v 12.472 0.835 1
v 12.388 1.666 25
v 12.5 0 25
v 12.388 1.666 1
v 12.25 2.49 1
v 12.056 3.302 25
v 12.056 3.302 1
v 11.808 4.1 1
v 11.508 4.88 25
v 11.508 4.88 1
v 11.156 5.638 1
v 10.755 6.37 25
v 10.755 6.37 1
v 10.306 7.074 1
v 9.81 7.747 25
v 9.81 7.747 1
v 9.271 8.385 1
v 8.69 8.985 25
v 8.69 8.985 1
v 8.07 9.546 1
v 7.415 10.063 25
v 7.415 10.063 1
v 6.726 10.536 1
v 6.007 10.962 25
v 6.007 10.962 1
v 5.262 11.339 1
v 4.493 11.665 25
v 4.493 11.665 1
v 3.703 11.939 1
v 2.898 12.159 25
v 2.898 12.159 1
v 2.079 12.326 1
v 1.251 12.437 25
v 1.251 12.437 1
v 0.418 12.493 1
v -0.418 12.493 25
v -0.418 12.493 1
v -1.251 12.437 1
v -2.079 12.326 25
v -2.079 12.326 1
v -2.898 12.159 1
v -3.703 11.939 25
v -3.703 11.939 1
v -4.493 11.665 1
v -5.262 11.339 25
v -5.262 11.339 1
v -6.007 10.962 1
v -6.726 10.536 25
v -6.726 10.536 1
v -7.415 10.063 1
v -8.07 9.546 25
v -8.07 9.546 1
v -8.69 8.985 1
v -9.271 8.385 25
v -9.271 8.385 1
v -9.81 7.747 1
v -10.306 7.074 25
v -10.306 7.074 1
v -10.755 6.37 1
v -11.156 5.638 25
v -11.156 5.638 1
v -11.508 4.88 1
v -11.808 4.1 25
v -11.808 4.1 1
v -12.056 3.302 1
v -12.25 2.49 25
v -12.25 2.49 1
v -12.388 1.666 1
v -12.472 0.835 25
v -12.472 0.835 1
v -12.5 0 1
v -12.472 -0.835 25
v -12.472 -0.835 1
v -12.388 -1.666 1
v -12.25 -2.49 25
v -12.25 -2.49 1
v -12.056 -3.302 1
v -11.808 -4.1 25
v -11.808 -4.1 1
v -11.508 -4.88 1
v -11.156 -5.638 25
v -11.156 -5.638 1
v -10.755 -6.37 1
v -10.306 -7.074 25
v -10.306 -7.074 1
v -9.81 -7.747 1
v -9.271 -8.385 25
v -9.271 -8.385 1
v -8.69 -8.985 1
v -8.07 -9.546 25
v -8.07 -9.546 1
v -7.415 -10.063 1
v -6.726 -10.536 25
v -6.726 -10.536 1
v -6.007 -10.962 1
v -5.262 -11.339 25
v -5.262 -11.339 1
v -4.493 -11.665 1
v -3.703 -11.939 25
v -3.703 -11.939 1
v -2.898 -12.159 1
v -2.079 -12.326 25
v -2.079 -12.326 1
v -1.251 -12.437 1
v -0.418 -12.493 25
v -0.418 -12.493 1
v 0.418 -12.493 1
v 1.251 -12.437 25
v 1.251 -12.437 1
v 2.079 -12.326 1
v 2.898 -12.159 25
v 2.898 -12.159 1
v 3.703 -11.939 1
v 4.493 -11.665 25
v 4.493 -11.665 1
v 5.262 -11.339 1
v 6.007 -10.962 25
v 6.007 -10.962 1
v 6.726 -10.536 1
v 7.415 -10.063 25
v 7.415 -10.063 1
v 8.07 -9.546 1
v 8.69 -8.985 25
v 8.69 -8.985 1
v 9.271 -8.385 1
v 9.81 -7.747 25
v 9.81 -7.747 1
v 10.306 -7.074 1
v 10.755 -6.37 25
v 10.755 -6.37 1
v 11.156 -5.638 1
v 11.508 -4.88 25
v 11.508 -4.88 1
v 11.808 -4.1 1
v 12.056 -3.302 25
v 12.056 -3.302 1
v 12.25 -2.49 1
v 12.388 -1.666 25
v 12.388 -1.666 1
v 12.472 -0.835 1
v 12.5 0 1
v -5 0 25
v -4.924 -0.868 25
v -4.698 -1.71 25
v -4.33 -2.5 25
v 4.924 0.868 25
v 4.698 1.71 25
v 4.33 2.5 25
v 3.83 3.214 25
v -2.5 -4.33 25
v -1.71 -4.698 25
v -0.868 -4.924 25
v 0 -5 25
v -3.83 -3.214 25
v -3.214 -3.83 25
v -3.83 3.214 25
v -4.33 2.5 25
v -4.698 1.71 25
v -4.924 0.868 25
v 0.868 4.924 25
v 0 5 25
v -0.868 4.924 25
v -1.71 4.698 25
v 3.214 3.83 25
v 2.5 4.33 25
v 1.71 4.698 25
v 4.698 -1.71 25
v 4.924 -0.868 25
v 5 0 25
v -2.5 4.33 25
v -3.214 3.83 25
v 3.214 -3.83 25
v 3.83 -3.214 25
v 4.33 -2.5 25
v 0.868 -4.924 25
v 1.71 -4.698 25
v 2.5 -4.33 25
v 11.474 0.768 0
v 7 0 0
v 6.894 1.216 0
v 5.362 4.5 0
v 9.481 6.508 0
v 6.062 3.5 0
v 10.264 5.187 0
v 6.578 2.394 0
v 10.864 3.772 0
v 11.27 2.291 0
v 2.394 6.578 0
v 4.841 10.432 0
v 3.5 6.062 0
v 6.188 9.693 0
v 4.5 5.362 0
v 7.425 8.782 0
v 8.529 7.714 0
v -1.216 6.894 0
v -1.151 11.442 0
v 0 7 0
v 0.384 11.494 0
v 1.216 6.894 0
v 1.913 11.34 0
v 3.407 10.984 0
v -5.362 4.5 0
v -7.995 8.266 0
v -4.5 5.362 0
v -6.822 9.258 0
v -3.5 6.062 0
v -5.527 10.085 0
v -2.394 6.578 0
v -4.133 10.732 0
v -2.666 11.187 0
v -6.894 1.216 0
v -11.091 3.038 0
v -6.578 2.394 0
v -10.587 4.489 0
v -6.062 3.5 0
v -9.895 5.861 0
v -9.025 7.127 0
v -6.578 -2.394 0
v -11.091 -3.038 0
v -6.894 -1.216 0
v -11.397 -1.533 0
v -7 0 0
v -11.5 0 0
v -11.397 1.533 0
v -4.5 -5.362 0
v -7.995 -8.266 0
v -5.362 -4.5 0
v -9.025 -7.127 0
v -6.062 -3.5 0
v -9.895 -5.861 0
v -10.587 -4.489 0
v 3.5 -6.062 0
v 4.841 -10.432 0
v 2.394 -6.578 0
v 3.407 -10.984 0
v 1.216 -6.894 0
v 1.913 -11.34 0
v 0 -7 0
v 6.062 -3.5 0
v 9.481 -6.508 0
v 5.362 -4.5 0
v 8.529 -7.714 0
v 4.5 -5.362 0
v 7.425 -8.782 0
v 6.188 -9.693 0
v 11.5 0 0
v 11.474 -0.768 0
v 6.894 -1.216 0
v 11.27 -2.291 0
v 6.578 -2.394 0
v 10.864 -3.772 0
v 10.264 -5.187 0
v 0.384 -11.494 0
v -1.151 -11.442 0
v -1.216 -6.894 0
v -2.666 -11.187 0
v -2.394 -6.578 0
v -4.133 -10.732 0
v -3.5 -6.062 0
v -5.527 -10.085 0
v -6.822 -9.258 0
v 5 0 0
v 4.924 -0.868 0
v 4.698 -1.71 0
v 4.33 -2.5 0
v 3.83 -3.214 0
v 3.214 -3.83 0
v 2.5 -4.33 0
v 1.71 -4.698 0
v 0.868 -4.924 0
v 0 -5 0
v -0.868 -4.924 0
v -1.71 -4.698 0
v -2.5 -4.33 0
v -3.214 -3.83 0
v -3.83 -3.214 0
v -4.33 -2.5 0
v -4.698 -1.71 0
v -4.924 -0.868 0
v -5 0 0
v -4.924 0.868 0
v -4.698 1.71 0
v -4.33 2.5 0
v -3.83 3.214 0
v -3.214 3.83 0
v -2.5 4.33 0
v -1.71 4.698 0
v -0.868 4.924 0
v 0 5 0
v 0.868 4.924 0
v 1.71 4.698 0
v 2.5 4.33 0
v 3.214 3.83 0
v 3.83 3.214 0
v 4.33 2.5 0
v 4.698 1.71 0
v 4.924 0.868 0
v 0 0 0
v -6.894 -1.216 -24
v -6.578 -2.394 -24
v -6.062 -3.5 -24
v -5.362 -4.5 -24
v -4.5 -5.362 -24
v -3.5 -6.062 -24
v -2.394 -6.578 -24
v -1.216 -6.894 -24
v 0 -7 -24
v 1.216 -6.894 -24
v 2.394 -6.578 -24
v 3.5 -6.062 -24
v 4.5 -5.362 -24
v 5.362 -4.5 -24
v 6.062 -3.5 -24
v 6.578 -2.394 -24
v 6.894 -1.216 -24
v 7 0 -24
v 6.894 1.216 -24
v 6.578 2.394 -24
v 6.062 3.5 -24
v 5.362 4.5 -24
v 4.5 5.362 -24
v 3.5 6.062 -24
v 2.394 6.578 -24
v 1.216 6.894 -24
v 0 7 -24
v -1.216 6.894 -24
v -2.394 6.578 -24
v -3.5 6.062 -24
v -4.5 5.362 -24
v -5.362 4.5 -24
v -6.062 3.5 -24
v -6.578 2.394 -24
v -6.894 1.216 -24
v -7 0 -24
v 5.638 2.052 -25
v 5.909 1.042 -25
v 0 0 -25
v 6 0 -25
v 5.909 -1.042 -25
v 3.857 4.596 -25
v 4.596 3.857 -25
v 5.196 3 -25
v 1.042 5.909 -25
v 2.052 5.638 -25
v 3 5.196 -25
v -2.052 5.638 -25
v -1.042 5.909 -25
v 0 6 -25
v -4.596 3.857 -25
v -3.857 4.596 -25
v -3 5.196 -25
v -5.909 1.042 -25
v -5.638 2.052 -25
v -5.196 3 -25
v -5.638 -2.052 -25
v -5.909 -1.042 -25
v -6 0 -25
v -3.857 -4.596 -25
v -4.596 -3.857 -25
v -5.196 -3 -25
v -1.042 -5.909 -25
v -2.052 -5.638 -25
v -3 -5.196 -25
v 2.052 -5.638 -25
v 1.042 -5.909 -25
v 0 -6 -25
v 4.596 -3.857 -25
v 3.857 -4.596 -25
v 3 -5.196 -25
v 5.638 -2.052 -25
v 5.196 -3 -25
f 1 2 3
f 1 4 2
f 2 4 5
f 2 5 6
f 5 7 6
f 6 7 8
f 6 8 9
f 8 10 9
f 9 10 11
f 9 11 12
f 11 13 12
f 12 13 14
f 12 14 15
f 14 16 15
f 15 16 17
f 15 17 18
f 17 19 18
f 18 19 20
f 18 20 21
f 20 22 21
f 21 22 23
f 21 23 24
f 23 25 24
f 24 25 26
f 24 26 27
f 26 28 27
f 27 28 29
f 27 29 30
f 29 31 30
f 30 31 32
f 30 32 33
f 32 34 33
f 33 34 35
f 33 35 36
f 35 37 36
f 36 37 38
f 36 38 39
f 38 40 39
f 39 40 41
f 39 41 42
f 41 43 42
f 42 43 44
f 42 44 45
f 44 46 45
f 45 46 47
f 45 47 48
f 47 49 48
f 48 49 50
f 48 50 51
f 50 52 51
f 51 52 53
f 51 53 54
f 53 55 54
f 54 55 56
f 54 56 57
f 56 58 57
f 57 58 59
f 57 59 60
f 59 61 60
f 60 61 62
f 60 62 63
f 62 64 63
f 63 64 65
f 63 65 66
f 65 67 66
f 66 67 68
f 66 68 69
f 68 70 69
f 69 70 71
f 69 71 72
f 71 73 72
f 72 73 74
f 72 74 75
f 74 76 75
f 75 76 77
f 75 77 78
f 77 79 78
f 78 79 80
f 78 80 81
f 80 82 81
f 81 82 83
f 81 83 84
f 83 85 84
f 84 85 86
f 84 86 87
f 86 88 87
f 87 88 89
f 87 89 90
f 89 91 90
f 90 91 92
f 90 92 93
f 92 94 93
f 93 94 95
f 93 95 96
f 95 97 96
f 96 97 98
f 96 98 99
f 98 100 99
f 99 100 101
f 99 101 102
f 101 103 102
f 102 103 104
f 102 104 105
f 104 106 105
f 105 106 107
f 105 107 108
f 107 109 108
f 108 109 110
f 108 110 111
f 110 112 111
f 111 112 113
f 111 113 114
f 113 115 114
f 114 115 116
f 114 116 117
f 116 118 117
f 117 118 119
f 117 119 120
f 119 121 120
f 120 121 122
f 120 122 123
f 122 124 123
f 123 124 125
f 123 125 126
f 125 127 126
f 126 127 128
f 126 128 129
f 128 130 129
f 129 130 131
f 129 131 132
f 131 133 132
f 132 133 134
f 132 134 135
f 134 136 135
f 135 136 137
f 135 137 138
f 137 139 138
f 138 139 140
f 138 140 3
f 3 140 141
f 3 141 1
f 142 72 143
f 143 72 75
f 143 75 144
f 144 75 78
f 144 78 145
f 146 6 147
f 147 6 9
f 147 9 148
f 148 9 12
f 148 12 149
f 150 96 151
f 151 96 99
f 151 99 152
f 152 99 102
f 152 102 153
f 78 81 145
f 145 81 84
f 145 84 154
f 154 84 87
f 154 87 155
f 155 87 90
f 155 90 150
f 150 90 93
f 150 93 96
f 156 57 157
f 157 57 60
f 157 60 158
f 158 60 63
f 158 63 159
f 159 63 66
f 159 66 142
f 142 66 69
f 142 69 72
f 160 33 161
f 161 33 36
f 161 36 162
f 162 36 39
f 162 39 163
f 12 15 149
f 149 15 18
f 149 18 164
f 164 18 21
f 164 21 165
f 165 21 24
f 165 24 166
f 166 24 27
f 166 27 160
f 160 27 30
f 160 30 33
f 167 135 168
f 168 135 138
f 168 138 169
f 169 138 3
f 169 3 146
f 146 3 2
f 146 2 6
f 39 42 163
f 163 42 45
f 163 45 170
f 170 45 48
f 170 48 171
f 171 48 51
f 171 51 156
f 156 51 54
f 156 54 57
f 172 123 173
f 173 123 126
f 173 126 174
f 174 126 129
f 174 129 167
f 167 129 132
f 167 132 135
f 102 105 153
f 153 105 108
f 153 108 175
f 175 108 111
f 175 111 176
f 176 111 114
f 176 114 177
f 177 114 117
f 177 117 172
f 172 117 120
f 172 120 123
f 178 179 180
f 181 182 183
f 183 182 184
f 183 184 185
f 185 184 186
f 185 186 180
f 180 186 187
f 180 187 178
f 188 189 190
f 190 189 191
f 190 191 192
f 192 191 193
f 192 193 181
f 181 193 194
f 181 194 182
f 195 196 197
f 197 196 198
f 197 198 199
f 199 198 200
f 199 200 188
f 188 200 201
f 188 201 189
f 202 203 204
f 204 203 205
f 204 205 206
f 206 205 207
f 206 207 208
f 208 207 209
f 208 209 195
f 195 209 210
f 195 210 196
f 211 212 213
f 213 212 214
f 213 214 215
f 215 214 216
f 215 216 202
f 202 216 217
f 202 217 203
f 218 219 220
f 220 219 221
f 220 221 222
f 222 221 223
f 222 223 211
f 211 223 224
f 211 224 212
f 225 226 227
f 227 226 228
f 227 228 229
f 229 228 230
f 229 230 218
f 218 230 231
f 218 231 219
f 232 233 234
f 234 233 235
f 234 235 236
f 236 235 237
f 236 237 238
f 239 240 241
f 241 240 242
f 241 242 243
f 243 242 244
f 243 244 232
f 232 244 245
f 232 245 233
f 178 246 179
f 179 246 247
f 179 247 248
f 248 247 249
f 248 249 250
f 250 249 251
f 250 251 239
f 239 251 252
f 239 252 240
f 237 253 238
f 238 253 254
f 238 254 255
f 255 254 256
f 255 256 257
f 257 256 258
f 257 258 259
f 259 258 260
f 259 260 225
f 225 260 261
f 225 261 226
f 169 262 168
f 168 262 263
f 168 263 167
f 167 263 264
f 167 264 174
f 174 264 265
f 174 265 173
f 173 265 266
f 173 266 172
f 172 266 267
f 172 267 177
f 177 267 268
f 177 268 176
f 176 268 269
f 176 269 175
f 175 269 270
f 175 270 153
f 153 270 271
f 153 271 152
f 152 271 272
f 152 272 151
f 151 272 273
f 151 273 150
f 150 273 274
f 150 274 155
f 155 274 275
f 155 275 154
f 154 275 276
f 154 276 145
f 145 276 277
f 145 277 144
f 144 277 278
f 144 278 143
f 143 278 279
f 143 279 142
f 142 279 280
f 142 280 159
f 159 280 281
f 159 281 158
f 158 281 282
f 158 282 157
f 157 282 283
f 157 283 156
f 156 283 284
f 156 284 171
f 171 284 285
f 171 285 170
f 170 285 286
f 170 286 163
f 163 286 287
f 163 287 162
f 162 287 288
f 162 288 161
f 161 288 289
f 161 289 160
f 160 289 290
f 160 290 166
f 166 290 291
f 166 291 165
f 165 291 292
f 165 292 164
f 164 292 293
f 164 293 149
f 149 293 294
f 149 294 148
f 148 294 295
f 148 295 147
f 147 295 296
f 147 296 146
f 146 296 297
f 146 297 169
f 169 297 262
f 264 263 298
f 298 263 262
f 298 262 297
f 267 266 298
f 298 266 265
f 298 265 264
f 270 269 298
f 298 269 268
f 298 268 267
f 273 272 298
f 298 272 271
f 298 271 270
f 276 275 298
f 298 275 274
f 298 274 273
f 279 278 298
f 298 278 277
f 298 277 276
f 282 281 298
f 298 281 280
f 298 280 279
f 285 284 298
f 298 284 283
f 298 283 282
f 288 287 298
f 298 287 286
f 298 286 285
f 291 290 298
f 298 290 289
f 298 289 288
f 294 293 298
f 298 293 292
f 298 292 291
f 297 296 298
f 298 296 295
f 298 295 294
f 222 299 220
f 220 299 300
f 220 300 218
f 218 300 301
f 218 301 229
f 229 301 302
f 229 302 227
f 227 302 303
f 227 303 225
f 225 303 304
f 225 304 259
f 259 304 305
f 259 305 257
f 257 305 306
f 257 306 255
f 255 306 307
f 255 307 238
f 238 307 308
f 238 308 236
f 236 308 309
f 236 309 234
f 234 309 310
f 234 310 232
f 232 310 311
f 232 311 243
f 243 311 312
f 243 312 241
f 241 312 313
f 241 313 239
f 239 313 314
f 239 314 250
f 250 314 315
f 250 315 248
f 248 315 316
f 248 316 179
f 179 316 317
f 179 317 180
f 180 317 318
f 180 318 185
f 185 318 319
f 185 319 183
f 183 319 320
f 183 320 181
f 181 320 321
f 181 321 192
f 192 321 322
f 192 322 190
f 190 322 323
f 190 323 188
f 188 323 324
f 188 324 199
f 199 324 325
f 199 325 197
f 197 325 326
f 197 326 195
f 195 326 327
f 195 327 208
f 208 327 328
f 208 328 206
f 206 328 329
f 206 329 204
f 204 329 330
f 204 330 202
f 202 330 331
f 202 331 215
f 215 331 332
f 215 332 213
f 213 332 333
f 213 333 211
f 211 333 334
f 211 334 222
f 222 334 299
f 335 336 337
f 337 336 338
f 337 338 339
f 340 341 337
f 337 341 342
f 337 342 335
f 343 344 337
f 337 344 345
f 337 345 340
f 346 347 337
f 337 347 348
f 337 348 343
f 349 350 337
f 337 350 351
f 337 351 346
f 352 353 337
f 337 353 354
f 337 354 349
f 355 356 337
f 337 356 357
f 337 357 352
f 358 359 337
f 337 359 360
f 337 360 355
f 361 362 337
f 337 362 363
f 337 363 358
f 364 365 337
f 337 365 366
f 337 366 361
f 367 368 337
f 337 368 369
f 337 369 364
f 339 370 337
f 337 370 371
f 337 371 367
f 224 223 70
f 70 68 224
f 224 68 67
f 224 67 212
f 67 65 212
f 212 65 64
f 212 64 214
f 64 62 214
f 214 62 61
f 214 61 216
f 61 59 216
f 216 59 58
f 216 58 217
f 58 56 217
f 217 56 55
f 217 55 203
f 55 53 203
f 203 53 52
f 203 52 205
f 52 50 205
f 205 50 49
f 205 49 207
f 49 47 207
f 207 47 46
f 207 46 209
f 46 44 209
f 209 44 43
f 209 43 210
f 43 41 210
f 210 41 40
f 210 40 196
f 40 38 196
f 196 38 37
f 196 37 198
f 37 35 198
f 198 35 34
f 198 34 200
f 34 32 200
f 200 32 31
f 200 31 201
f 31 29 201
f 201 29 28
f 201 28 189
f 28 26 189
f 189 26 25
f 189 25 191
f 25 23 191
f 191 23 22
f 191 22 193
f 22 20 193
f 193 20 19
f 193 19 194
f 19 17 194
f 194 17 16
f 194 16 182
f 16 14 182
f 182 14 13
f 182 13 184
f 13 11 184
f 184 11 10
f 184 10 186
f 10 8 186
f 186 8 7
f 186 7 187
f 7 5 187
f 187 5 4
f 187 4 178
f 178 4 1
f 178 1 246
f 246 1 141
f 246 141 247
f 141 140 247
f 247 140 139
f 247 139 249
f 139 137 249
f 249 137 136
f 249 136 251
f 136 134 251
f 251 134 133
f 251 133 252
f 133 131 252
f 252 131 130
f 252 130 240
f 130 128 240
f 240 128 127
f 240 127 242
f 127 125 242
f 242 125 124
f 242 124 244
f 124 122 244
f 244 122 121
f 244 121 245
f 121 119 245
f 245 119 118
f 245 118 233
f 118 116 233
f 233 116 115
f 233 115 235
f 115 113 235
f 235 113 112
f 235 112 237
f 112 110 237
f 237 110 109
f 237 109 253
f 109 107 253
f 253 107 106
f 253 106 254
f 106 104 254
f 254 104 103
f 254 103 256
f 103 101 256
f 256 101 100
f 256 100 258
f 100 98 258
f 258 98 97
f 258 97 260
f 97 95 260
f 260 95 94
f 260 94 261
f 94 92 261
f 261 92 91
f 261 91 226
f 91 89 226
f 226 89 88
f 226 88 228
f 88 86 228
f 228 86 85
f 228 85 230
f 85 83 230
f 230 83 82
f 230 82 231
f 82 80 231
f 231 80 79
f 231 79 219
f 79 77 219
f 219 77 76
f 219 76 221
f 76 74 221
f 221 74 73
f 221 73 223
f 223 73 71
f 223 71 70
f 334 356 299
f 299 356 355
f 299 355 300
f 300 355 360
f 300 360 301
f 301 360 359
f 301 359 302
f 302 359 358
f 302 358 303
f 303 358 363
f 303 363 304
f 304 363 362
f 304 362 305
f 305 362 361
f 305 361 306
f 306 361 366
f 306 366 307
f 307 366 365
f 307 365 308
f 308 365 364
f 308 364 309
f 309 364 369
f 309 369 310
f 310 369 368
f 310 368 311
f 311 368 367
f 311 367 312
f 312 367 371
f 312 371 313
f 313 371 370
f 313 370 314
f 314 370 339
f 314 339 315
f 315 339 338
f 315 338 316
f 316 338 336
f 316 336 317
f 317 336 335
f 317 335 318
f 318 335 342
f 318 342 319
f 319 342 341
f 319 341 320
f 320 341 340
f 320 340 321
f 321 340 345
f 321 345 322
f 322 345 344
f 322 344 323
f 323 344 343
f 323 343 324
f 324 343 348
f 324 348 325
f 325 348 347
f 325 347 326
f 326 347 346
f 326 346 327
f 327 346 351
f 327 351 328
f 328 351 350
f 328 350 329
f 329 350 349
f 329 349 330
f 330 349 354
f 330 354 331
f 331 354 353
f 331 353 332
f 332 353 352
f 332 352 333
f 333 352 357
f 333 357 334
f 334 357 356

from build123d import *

# Parameters (mm, degrees)
SKETCH1_R           = 12.5
SKETCH1_R_2         = 5
BOSS_EXTRUDE1_DEPTH = 25
SKETCH3_R           = 7
BOSS_EXTRUDE2_DEPTH = 25
CHAMFER1_SIZE       = 1
CHAMFER2_SIZE       = 1


with BuildPart() as part:
    # Sketch1 → Boss-Extrude1 (new body)
    with BuildSketch(Plane.XY):
        Circle(SKETCH1_R)
        Circle(SKETCH1_R_2, mode=Mode.SUBTRACT)
    extrude(amount=BOSS_EXTRUDE1_DEPTH)

    # Sketch3 → Boss-Extrude2 (add)
    with BuildSketch(Plane(origin=(0, 0, 0), x_dir=(-1, 0, 0), z_dir=(0, 0, -1))):
        Circle(SKETCH3_R)
    extrude(amount=BOSS_EXTRUDE2_DEPTH)

    # Chamfer1
    chamfer1_edges = [part.edges().sort_by_distance(p)[0] for p in [
        (-12.5, 0, 0),
    ]]
    chamfer(chamfer1_edges, length=CHAMFER1_SIZE)

    # Chamfer2
    chamfer2_edges = [part.edges().sort_by_distance(p)[0] for p in [
        (7, 0, -25),
    ]]
    chamfer(chamfer2_edges, length=CHAMFER2_SIZE)


solid = part.part
